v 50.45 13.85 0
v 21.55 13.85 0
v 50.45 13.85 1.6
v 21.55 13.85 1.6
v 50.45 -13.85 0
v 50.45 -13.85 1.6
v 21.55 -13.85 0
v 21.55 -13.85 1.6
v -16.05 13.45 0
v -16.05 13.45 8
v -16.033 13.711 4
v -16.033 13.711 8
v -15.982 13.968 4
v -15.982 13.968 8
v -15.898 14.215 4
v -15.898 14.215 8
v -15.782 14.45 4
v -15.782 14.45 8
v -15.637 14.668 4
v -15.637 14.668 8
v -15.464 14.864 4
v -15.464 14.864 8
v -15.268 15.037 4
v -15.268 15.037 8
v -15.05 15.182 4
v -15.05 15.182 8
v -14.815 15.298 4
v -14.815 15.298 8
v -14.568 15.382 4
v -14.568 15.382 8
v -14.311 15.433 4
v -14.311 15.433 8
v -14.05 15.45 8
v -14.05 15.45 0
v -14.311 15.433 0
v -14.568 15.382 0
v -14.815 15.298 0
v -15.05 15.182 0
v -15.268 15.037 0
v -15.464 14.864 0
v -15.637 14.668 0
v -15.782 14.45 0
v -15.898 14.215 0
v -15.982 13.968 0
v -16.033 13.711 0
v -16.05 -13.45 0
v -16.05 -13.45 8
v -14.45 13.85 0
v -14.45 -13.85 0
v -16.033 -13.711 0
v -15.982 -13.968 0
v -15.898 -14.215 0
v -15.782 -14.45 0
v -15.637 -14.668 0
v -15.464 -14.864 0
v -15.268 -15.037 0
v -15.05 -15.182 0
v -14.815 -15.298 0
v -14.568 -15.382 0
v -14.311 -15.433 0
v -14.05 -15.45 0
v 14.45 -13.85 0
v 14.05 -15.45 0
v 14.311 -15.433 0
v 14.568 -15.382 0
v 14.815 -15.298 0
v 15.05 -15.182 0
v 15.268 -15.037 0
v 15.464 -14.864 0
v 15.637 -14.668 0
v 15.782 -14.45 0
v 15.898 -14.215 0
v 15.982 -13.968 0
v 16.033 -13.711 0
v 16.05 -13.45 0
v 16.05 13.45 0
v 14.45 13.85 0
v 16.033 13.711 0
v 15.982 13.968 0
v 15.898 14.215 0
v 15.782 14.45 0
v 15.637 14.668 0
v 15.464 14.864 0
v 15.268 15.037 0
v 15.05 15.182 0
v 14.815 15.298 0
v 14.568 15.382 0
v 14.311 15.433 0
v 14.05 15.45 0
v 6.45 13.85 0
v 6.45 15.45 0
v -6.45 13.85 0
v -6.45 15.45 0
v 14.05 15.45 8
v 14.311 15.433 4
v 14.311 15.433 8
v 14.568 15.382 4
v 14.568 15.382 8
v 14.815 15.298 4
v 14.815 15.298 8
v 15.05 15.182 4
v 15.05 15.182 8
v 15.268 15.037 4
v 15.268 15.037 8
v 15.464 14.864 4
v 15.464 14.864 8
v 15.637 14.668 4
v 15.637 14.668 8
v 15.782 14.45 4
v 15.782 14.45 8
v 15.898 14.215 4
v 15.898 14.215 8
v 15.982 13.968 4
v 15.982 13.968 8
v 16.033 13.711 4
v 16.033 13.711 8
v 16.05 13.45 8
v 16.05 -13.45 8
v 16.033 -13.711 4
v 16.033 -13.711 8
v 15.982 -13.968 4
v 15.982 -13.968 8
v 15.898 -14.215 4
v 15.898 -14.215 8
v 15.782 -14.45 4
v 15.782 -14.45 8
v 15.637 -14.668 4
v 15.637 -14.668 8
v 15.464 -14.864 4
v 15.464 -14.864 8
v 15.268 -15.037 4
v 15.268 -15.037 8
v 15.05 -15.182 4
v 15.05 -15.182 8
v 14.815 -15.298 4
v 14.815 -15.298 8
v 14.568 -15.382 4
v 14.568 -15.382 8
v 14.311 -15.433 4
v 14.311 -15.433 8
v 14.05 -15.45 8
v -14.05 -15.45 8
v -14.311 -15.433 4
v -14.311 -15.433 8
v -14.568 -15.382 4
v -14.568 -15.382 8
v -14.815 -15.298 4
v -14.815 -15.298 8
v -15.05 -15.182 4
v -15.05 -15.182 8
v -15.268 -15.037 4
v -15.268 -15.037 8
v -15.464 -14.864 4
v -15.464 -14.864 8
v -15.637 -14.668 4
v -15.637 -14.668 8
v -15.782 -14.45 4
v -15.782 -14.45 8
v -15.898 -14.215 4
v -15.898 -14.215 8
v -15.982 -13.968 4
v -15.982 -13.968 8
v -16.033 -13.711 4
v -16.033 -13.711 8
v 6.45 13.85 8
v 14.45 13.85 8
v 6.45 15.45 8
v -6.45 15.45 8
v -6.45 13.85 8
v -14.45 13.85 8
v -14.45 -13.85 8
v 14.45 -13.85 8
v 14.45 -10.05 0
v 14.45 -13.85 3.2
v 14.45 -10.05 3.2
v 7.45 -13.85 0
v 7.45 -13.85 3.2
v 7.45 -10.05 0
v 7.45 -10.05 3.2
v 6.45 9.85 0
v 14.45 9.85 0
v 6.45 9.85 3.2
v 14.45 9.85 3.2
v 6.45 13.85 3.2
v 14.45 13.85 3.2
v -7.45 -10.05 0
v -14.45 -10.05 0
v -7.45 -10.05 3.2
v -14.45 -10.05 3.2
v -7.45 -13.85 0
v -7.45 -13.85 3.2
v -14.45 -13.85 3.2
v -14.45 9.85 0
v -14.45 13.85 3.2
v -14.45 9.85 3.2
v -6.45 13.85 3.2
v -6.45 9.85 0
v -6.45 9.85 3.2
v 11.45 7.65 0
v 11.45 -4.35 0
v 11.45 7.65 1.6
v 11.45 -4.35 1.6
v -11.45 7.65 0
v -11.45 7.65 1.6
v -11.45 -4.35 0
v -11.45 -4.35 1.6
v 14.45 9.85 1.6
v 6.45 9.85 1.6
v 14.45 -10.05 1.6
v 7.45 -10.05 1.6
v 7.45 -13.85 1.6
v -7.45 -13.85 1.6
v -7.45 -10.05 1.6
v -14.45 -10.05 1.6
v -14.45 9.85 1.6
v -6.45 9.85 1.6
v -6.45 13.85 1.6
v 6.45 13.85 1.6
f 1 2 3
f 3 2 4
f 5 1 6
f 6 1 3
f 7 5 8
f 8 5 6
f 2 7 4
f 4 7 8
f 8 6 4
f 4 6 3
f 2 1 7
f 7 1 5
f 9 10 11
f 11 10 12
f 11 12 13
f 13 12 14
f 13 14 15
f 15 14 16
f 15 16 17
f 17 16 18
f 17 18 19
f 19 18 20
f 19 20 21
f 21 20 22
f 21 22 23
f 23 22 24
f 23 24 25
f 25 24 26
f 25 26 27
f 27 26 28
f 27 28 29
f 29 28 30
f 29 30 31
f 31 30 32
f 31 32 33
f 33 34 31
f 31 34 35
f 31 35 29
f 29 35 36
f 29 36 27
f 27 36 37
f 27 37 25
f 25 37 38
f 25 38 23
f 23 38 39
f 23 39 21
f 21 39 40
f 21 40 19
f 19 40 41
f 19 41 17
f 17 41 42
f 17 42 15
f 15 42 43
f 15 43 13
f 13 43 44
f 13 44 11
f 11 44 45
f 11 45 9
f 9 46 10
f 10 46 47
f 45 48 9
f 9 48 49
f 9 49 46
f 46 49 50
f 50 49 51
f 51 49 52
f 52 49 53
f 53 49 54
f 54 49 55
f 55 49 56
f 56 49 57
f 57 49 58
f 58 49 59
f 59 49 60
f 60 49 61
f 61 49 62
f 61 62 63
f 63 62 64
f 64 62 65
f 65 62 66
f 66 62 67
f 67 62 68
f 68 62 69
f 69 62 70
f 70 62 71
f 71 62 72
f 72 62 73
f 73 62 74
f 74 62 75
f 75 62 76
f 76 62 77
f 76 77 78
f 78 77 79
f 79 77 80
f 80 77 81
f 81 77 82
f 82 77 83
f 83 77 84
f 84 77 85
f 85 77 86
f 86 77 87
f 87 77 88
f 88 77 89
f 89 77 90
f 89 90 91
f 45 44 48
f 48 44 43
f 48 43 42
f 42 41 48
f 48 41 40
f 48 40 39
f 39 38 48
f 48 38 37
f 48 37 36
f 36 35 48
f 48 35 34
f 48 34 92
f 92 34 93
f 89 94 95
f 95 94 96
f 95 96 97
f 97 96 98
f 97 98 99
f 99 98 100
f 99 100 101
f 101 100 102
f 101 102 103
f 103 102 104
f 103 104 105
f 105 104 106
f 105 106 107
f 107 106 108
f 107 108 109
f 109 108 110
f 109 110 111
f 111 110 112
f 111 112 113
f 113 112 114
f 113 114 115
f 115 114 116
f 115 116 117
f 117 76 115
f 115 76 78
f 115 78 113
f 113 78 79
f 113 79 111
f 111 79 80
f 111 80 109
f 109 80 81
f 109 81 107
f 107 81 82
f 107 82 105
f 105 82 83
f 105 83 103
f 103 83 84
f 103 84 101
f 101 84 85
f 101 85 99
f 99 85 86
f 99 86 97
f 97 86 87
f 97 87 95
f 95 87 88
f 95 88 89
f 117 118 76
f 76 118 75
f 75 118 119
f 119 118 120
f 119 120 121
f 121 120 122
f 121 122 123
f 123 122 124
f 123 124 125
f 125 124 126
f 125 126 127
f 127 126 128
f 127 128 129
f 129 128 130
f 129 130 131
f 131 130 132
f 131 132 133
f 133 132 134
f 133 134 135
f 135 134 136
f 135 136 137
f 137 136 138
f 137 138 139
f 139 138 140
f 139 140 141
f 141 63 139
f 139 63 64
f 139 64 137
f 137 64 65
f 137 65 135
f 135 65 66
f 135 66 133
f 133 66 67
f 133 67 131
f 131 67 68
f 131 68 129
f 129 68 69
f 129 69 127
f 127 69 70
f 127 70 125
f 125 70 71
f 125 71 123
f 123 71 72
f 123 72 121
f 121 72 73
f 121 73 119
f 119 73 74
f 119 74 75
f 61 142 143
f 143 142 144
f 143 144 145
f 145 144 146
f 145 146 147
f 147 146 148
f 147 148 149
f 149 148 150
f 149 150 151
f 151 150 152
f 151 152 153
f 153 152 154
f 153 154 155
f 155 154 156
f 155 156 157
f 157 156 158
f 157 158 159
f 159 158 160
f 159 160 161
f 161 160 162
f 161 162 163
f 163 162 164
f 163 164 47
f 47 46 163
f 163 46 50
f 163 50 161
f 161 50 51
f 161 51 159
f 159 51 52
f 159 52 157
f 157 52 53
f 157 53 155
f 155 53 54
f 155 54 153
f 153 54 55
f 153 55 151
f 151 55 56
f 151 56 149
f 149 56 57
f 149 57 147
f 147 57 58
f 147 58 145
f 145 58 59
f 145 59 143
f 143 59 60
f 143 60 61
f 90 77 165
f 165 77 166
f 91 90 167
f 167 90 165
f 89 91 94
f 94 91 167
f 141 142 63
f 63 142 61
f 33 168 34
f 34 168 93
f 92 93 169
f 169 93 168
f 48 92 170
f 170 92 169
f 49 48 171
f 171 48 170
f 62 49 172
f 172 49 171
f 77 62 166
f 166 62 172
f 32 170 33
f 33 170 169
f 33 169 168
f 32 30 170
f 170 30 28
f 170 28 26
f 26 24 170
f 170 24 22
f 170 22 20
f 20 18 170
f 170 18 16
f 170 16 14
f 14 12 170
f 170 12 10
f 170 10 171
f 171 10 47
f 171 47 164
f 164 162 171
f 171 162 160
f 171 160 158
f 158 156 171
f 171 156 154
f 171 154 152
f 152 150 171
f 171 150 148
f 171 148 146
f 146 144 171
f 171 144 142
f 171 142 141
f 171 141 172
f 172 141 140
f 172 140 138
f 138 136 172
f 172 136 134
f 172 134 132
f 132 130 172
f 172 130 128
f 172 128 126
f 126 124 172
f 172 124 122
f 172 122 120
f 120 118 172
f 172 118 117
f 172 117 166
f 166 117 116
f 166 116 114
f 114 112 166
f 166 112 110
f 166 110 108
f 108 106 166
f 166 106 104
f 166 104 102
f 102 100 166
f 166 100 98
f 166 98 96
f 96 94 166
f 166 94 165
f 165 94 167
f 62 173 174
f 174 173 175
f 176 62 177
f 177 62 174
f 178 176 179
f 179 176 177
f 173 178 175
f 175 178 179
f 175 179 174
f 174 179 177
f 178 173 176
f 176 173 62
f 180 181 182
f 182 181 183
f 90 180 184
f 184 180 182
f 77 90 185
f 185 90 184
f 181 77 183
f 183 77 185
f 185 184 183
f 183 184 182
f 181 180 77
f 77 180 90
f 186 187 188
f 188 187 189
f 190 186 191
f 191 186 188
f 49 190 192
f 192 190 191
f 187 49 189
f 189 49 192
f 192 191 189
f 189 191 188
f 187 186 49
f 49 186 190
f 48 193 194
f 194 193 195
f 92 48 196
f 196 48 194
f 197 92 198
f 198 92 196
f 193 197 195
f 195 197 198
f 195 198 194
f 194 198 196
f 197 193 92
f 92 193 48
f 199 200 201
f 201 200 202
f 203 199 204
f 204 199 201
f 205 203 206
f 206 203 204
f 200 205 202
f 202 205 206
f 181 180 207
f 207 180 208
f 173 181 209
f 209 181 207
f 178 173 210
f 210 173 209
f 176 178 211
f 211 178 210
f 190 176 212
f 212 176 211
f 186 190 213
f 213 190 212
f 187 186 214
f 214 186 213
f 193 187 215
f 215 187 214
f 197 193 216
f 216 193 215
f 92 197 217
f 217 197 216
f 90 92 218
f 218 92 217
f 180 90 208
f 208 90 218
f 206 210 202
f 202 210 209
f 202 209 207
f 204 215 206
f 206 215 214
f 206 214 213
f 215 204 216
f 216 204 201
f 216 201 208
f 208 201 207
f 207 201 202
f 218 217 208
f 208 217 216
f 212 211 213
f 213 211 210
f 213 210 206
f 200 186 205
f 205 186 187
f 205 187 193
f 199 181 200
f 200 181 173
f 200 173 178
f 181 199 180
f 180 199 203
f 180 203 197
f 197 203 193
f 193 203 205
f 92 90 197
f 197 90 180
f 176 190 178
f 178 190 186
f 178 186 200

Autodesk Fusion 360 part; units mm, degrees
sketch "Sketch1" plane through (0, 0, 0) normal (0, 0, 1) x (1, 0, 0)
  line L0 (14.45, -13.85) -> (-14.45, -13.85)
  line L1 (-14.45, -13.85) -> (-14.45, 13.85)
  line L2 (-14.45, 13.85) -> (14.45, 13.85)
  line L3 (14.45, 13.85) -> (14.45, -13.85)
  line L4 (14.45, -13.85) -> (-14.45, 13.85) construction
  line L5 (-14.45, -13.85) -> (14.45, 13.85) construction
  line L6 (-14.45, 13.85) -> (-6.45, 13.85)
  line L7 (-6.45, 13.85) -> (-6.45, 9.85)
  line L8 (-6.45, 9.85) -> (-14.45, 9.85)
  line L9 (-14.45, 9.85) -> (-14.45, 13.85)
  line L10 (14.45, 13.85) -> (6.45, 13.85)
  line L11 (6.45, 13.85) -> (6.45, 9.85)
  line L12 (6.45, 9.85) -> (14.45, 9.85)
  line L13 (14.45, 9.85) -> (14.45, 13.85)
  line L14 (-14.45, -13.85) -> (-7.45, -13.85)
  line L15 (-7.45, -13.85) -> (-7.45, -10.05)
  line L16 (-7.45, -10.05) -> (-14.45, -10.05)
  line L17 (-14.45, -10.05) -> (-14.45, -13.85)
  line L18 (14.45, -13.85) -> (7.45, -13.85)
  line L19 (7.45, -13.85) -> (7.45, -10.05)
  line L20 (7.45, -10.05) -> (14.45, -10.05)
  line L21 (14.45, -10.05) -> (14.45, -13.85)
  line L22 (-11.45, 7.65) -> (11.45, 7.65)
  line L23 (11.45, 7.65) -> (11.45, -4.35)
  line L24 (11.45, -4.35) -> (-11.45, -4.35)
  line L25 (-11.45, -4.35) -> (-11.45, 7.65)
  line L26 (16.05, -15.45) -> (-16.05, -15.45)
  line L27 (-16.05, -15.45) -> (-16.05, 15.45)
  line L28 (-16.05, 15.45) -> (16.05, 15.45)
  line L29 (16.05, 15.45) -> (16.05, -15.45)
  line L30 (6.45, 13.85) -> (-6.45, 13.85)
  line L31 (-6.45, 13.85) -> (-6.45, 17.05)
  line L32 (-6.45, 17.05) -> (6.45, 17.05)
  line L33 (6.45, 17.05) -> (6.45, 13.85)
  line L34 (6.45, 13.85) -> (-6.45, 17.05) construction
  line L35 (-6.45, 13.85) -> (6.45, 17.05) construction
  line L36 (21.55, -13.85) -> (21.55, 13.85)
  line L37 (50.45, -13.85) -> (21.55, -13.85)
  line L38 (50.45, 13.85) -> (50.45, -13.85)
  line L39 (21.55, 13.85) -> (50.45, 13.85)
  point P0 (0, 15.45)
  dimension "d1" = 28.9
  dimension "d2" = 27.7
  dimension "d3" = 8
  dimension "d4" = 4
  dimension "d5" = 8
  dimension "d6" = 4
  dimension "d7" = 7
  dimension "d8" = 3.8
  dimension "d9" = 7
  dimension "d10" = 3.8
  dimension "d11" = 22.9
  dimension "d12" = 12
  dimension "d13" = 6.2
  dimension "d14" = 3
  dimension "d15" = -1.6
  dimension "d16" = 12.9
  dimension "d23" = 28.9
  dimension "d24" = 27.7
extrude "Extrude4" add sketch "Sketch1" along normal blind 1.6 contours L36 L37 L38 L39 makes body 1
extrude "Extrude3" add sketch "Sketch1" along normal blind 8 separate body contours L0 L1 L2 L3 L6 L9 L10 L13 L14 L17 L18 L21 L26 L27 L28 L29 L31 L33 makes body 2
extrude "Extrude2" add sketch "Sketch1" along normal blind 3.2 separate body contours L0 L3 L18 L19 L20 L21 | L0 L1 L14 L15 L16 L17 | L2 L3 L10 L11 L12 L13 | L1 L2 L6 L7 L8 L9 makes body 3 at (12.1167, -12.5833, 0) makes body 4 at (9.1167, 11.1833, 0) makes body 5 at (-9.7833, -12.5833, 0) makes body 6 at (-11.7833, 12.5167, 0)
extrude "Extrude1" add sketch "Sketch1" along normal blind 1.6 separate body contours L0 L1 L2 L3 L7 L8 L11 L12 L15 L16 L19 L20 L30 makes body 7
fillet "Fillet1" radius 2 4 edges at (-16.05, -15.45, 4) (16.05, -15.45, 4) (16.05, 15.45, 4) (-16.05, 15.45, 4) on bodies 2
